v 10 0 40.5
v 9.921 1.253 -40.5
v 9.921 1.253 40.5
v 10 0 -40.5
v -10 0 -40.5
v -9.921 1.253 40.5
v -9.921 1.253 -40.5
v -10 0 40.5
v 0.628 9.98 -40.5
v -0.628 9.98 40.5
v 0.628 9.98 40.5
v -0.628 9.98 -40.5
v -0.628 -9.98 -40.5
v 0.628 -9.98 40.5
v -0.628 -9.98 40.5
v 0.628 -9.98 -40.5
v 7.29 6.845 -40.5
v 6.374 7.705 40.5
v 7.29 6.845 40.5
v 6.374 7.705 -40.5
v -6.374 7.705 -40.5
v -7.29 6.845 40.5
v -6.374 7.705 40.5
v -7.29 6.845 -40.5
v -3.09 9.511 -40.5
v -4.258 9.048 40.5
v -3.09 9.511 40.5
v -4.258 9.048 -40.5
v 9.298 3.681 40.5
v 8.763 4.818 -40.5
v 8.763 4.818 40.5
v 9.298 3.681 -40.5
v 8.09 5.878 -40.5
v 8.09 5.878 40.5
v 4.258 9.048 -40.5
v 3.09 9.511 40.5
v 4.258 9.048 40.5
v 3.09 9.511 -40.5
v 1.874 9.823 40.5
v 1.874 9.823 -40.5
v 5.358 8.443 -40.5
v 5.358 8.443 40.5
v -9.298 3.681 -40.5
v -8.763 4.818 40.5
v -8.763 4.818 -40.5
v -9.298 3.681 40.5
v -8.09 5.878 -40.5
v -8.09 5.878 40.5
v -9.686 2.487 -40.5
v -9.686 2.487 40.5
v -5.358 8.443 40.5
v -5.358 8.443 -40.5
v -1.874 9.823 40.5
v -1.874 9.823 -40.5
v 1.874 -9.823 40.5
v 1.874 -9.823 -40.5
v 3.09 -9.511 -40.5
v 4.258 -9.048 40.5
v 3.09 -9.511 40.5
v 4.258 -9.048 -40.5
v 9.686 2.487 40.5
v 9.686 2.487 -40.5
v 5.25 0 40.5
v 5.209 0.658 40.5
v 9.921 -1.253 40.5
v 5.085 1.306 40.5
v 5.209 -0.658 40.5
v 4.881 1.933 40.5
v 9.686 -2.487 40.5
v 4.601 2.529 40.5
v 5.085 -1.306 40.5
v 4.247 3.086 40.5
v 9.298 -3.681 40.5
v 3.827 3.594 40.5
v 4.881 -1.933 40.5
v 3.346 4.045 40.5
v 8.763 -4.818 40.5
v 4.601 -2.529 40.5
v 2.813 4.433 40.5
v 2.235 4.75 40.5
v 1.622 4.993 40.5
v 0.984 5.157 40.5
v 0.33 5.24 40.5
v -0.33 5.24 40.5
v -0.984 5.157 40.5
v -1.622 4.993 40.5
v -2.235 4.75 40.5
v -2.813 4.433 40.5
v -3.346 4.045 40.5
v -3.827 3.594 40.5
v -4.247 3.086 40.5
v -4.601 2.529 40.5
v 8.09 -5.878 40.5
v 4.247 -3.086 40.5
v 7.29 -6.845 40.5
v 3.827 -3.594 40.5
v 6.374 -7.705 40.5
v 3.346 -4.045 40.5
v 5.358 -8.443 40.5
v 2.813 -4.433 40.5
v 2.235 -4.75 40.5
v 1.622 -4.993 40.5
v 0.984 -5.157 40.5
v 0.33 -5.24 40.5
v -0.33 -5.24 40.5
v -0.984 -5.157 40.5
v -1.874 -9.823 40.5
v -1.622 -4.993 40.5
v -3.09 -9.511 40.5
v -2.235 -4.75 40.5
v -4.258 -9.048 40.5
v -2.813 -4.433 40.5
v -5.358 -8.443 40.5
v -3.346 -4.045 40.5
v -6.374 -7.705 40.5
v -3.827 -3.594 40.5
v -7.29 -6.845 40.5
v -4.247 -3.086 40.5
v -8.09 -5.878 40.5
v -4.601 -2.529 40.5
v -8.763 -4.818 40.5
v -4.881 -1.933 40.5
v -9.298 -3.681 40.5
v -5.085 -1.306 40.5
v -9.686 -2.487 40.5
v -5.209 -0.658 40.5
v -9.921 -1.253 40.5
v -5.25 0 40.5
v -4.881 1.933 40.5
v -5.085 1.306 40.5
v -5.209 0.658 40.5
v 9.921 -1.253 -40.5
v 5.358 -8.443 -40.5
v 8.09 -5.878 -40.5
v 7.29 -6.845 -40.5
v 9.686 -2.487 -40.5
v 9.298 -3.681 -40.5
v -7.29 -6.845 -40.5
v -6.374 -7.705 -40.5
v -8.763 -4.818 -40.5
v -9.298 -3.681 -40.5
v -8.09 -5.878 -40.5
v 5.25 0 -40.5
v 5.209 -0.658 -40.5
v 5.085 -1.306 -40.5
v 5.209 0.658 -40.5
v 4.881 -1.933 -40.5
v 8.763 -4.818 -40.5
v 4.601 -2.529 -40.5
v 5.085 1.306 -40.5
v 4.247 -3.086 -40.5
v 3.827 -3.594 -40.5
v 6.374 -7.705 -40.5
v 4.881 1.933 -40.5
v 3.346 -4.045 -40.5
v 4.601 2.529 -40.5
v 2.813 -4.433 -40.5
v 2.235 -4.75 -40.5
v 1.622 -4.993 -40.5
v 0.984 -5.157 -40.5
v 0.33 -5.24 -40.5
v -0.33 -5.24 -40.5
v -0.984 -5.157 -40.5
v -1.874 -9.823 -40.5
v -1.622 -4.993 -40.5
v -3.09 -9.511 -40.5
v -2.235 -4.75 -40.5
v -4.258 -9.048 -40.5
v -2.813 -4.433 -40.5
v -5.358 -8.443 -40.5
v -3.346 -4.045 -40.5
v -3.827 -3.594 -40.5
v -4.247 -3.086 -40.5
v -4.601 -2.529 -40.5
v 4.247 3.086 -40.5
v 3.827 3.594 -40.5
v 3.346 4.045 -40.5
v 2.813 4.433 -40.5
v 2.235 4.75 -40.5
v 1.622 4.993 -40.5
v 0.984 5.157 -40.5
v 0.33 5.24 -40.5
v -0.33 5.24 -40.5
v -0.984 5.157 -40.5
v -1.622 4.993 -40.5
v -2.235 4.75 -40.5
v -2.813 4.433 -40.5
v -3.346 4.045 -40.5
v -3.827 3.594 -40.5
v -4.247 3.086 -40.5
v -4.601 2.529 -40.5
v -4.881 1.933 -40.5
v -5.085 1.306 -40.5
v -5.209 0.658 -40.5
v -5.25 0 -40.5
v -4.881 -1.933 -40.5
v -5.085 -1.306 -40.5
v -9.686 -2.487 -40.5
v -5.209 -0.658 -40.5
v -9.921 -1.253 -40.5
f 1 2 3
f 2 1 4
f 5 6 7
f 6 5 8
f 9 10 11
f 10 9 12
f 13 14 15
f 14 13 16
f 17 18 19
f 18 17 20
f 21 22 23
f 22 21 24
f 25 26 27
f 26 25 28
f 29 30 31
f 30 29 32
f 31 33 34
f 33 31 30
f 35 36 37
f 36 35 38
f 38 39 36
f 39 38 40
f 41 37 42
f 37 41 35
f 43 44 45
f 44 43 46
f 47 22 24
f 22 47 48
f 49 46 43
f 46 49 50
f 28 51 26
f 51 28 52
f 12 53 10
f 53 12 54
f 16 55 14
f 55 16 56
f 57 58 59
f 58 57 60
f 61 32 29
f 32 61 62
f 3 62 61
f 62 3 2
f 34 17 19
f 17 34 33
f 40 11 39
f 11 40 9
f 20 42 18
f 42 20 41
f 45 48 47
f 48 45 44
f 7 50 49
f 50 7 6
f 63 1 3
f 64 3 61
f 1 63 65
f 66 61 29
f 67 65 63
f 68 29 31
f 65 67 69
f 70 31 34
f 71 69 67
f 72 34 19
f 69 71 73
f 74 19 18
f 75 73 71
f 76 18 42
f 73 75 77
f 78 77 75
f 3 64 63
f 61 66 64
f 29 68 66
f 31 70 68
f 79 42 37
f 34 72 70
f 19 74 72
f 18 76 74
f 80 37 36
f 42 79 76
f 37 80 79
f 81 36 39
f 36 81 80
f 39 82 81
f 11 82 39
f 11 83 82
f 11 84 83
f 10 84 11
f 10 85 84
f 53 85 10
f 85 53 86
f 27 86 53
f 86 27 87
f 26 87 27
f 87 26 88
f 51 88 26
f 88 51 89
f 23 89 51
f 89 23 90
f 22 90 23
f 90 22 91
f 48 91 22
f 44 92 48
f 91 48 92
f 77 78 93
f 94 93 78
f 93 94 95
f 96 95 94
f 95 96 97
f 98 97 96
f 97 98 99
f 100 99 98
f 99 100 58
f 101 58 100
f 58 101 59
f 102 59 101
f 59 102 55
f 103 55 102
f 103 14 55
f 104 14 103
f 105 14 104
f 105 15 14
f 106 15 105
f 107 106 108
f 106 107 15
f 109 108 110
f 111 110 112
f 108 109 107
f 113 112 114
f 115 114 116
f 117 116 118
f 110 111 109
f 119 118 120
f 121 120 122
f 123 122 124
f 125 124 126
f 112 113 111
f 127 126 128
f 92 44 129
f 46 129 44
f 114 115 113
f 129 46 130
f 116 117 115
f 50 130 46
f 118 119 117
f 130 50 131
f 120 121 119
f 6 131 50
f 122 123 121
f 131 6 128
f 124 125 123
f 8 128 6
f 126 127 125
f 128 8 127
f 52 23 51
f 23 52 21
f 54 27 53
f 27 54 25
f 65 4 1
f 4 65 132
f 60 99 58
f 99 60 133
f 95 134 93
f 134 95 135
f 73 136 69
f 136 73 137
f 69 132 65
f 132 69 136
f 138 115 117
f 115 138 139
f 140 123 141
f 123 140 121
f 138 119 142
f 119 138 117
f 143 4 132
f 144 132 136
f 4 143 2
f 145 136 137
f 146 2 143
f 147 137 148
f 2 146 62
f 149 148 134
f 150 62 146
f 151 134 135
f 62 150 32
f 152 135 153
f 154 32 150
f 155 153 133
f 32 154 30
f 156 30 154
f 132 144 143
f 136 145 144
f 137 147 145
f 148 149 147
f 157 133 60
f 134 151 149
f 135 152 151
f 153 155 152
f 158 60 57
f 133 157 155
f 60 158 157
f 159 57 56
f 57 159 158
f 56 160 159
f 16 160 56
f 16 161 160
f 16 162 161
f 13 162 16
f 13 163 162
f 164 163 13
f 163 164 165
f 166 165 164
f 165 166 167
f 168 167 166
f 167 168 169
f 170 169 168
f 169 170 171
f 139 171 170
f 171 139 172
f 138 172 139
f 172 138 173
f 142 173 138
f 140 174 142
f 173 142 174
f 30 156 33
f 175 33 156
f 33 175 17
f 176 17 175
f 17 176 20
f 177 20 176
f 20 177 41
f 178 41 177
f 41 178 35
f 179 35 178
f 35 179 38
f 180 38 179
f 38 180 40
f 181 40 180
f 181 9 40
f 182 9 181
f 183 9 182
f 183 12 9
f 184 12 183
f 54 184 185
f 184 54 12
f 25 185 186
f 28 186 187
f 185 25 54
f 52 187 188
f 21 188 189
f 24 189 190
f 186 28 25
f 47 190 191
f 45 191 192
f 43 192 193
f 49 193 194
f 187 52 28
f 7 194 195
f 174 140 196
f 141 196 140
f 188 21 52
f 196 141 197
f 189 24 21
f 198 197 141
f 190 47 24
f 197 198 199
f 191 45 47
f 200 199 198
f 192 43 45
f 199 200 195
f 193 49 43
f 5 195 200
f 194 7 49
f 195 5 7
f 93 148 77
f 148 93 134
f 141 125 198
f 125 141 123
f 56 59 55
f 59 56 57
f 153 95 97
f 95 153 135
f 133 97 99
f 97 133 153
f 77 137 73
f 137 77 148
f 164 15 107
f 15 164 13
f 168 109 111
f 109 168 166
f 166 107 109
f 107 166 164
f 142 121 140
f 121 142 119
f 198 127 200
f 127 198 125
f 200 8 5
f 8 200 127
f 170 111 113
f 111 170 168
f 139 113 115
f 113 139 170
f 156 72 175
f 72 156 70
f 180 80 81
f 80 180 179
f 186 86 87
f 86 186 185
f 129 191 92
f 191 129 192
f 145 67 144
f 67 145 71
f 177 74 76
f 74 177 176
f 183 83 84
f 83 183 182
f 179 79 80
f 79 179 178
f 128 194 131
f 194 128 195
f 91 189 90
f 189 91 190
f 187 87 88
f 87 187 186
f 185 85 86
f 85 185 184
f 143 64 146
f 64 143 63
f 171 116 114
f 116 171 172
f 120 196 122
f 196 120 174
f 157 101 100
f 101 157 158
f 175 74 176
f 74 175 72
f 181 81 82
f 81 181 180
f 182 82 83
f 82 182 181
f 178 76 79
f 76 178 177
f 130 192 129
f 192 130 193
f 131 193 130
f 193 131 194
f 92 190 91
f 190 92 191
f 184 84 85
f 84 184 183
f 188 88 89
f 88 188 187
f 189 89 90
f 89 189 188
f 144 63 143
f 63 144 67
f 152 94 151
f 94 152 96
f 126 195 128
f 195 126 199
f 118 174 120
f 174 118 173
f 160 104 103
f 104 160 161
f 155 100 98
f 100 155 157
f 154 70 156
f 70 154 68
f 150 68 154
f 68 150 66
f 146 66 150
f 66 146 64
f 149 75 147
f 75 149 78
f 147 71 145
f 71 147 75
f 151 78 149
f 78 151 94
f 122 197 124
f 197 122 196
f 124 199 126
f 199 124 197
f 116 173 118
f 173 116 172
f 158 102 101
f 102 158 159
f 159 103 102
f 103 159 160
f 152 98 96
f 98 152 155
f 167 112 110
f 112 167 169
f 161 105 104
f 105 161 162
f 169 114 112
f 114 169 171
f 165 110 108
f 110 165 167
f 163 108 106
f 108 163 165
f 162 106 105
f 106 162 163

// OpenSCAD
$fn = 50;


difference() {
	union() {
		translate(v = [0, 0, -40.5000000000]) {
			cylinder(h = 81, r = 10.0000000000);
		}
	}
	union() {
		translate(v = [0, 0, -100.0000000000]) {
			cylinder(h = 200, r = 5.2500000000);
		}
	}
}
